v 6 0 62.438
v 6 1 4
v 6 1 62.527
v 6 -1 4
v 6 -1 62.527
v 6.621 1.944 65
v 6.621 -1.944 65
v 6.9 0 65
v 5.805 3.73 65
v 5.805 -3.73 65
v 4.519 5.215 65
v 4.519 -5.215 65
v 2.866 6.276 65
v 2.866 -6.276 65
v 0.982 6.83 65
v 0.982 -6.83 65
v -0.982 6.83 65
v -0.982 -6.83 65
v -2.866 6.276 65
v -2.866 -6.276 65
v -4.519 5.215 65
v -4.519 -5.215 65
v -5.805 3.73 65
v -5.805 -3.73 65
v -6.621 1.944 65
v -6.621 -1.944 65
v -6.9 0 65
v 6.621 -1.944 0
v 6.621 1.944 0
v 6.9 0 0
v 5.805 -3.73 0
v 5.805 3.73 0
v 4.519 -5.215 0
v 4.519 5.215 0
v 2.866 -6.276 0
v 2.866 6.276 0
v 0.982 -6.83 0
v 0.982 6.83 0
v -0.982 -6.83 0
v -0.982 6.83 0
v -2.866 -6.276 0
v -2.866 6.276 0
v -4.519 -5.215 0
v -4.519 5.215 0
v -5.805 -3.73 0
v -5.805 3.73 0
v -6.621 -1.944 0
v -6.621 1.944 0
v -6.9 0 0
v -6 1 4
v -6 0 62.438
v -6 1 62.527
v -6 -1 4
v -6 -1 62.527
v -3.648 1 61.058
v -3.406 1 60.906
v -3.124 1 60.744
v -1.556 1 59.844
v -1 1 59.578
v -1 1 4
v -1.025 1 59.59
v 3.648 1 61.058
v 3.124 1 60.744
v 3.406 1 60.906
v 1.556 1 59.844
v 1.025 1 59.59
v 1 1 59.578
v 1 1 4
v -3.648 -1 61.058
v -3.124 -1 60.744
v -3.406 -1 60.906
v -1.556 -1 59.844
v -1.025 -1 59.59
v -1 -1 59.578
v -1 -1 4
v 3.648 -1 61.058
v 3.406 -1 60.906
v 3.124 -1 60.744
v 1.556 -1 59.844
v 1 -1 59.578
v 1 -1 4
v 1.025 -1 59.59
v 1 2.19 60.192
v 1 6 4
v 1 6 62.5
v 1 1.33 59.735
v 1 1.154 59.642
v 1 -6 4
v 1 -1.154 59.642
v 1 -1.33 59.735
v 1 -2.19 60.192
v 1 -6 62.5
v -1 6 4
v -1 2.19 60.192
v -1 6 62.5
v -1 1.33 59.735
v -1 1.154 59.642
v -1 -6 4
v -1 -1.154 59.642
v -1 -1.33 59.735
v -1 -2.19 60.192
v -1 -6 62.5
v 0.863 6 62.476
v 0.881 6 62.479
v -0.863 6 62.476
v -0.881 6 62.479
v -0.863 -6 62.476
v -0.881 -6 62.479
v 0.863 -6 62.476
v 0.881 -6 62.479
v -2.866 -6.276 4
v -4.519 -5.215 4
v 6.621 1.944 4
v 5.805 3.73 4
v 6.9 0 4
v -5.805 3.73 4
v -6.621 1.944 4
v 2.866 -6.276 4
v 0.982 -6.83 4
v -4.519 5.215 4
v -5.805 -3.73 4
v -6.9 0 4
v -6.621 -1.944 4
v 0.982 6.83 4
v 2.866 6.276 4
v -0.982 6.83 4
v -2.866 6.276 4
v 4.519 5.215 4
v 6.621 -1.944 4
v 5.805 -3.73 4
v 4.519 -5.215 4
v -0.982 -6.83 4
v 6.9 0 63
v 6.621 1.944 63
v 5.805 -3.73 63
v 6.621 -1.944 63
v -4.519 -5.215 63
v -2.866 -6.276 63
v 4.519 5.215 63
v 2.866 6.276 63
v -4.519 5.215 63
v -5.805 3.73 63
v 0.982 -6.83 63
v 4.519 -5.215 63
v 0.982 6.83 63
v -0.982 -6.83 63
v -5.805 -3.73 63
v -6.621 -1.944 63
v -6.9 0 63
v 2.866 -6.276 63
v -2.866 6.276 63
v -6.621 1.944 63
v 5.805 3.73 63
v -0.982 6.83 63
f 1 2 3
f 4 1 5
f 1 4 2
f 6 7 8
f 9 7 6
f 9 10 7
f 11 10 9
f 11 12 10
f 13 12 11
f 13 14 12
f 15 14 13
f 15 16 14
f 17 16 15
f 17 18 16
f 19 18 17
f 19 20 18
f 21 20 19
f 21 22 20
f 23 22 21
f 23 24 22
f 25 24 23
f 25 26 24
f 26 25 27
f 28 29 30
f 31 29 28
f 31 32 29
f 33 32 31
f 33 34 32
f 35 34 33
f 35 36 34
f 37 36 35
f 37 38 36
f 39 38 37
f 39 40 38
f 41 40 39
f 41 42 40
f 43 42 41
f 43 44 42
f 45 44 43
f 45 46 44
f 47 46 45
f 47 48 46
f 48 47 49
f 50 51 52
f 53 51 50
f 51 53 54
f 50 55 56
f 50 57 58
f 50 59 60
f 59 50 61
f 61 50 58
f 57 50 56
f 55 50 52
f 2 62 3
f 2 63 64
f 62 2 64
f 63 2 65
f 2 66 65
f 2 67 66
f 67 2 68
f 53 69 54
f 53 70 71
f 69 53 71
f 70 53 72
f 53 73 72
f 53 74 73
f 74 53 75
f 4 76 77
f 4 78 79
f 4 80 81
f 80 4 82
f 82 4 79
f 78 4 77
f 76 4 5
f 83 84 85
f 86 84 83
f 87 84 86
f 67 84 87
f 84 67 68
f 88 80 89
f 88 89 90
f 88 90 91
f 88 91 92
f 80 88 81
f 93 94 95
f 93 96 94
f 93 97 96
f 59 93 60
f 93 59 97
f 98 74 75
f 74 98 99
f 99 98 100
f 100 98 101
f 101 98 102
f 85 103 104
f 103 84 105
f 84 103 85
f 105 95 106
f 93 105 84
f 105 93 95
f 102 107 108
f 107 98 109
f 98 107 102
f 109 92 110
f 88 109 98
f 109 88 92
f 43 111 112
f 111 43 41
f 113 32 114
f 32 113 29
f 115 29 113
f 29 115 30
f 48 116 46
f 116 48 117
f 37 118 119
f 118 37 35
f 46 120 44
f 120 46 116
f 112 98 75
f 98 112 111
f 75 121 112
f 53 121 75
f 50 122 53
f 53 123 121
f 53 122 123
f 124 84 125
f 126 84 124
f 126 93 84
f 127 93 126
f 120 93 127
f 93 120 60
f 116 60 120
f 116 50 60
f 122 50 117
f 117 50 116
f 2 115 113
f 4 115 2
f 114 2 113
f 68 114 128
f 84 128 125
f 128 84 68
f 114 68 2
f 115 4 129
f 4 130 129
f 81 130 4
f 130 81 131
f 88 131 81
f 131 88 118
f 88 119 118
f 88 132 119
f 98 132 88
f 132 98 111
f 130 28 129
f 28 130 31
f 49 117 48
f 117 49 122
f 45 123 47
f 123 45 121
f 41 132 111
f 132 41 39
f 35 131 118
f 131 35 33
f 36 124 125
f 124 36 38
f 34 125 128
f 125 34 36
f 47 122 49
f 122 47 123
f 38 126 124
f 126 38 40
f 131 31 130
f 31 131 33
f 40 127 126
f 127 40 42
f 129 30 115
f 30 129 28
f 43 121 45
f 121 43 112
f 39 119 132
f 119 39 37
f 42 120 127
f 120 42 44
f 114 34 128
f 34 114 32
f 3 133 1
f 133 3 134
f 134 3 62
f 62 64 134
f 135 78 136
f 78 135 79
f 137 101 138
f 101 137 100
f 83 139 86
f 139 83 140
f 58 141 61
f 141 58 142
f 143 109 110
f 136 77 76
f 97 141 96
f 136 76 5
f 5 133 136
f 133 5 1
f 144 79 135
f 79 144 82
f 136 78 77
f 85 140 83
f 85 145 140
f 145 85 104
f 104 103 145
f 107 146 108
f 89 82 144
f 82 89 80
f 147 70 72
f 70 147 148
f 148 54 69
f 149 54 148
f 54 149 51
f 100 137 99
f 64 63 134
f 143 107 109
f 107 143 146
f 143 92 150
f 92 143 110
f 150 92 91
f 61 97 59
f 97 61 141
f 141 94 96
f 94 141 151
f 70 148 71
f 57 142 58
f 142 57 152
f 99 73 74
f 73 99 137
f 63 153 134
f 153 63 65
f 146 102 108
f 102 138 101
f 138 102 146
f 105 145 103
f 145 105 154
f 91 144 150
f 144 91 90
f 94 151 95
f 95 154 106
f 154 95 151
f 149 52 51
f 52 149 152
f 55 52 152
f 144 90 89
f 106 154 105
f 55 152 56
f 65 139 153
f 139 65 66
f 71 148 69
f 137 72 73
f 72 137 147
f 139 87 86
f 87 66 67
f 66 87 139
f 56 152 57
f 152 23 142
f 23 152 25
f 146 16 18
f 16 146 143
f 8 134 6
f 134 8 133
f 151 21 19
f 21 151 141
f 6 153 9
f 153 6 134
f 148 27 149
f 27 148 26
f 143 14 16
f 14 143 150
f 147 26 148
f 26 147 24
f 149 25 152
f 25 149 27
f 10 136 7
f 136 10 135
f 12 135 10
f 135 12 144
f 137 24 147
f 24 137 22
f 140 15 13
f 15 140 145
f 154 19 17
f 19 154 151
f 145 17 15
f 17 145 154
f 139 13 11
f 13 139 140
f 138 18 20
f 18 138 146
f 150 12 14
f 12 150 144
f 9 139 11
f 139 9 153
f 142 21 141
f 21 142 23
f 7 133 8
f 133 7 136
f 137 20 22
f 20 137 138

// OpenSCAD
/*
 * LM8UU Bearing Pusher
 * Copyright 2021 Alex Volkov <alex@flamy.ca>
 * License: Attribution-ShareAlike 4.0 International (CC BY-SA)
 * https://creativecommons.org/licenses/by-sa/4.0/
 */

include <../libs/hardware-recess.scad>;

TOTAL_LEN=65;
BEARING_D=13.8;

cylinder(h=4, d=BEARING_D);
translate([0,0,TOTAL_LEN/2]){
    cube([12,2, TOTAL_LEN], center=true);
    cube([2,12, TOTAL_LEN], center=true);
}
translate([0,0,TOTAL_LEN-6])
    cylinder(h=4, d1=1, d=BEARING_D);
translate([0,0,TOTAL_LEN-2])
    cylinder(h=2, d=BEARING_D);
